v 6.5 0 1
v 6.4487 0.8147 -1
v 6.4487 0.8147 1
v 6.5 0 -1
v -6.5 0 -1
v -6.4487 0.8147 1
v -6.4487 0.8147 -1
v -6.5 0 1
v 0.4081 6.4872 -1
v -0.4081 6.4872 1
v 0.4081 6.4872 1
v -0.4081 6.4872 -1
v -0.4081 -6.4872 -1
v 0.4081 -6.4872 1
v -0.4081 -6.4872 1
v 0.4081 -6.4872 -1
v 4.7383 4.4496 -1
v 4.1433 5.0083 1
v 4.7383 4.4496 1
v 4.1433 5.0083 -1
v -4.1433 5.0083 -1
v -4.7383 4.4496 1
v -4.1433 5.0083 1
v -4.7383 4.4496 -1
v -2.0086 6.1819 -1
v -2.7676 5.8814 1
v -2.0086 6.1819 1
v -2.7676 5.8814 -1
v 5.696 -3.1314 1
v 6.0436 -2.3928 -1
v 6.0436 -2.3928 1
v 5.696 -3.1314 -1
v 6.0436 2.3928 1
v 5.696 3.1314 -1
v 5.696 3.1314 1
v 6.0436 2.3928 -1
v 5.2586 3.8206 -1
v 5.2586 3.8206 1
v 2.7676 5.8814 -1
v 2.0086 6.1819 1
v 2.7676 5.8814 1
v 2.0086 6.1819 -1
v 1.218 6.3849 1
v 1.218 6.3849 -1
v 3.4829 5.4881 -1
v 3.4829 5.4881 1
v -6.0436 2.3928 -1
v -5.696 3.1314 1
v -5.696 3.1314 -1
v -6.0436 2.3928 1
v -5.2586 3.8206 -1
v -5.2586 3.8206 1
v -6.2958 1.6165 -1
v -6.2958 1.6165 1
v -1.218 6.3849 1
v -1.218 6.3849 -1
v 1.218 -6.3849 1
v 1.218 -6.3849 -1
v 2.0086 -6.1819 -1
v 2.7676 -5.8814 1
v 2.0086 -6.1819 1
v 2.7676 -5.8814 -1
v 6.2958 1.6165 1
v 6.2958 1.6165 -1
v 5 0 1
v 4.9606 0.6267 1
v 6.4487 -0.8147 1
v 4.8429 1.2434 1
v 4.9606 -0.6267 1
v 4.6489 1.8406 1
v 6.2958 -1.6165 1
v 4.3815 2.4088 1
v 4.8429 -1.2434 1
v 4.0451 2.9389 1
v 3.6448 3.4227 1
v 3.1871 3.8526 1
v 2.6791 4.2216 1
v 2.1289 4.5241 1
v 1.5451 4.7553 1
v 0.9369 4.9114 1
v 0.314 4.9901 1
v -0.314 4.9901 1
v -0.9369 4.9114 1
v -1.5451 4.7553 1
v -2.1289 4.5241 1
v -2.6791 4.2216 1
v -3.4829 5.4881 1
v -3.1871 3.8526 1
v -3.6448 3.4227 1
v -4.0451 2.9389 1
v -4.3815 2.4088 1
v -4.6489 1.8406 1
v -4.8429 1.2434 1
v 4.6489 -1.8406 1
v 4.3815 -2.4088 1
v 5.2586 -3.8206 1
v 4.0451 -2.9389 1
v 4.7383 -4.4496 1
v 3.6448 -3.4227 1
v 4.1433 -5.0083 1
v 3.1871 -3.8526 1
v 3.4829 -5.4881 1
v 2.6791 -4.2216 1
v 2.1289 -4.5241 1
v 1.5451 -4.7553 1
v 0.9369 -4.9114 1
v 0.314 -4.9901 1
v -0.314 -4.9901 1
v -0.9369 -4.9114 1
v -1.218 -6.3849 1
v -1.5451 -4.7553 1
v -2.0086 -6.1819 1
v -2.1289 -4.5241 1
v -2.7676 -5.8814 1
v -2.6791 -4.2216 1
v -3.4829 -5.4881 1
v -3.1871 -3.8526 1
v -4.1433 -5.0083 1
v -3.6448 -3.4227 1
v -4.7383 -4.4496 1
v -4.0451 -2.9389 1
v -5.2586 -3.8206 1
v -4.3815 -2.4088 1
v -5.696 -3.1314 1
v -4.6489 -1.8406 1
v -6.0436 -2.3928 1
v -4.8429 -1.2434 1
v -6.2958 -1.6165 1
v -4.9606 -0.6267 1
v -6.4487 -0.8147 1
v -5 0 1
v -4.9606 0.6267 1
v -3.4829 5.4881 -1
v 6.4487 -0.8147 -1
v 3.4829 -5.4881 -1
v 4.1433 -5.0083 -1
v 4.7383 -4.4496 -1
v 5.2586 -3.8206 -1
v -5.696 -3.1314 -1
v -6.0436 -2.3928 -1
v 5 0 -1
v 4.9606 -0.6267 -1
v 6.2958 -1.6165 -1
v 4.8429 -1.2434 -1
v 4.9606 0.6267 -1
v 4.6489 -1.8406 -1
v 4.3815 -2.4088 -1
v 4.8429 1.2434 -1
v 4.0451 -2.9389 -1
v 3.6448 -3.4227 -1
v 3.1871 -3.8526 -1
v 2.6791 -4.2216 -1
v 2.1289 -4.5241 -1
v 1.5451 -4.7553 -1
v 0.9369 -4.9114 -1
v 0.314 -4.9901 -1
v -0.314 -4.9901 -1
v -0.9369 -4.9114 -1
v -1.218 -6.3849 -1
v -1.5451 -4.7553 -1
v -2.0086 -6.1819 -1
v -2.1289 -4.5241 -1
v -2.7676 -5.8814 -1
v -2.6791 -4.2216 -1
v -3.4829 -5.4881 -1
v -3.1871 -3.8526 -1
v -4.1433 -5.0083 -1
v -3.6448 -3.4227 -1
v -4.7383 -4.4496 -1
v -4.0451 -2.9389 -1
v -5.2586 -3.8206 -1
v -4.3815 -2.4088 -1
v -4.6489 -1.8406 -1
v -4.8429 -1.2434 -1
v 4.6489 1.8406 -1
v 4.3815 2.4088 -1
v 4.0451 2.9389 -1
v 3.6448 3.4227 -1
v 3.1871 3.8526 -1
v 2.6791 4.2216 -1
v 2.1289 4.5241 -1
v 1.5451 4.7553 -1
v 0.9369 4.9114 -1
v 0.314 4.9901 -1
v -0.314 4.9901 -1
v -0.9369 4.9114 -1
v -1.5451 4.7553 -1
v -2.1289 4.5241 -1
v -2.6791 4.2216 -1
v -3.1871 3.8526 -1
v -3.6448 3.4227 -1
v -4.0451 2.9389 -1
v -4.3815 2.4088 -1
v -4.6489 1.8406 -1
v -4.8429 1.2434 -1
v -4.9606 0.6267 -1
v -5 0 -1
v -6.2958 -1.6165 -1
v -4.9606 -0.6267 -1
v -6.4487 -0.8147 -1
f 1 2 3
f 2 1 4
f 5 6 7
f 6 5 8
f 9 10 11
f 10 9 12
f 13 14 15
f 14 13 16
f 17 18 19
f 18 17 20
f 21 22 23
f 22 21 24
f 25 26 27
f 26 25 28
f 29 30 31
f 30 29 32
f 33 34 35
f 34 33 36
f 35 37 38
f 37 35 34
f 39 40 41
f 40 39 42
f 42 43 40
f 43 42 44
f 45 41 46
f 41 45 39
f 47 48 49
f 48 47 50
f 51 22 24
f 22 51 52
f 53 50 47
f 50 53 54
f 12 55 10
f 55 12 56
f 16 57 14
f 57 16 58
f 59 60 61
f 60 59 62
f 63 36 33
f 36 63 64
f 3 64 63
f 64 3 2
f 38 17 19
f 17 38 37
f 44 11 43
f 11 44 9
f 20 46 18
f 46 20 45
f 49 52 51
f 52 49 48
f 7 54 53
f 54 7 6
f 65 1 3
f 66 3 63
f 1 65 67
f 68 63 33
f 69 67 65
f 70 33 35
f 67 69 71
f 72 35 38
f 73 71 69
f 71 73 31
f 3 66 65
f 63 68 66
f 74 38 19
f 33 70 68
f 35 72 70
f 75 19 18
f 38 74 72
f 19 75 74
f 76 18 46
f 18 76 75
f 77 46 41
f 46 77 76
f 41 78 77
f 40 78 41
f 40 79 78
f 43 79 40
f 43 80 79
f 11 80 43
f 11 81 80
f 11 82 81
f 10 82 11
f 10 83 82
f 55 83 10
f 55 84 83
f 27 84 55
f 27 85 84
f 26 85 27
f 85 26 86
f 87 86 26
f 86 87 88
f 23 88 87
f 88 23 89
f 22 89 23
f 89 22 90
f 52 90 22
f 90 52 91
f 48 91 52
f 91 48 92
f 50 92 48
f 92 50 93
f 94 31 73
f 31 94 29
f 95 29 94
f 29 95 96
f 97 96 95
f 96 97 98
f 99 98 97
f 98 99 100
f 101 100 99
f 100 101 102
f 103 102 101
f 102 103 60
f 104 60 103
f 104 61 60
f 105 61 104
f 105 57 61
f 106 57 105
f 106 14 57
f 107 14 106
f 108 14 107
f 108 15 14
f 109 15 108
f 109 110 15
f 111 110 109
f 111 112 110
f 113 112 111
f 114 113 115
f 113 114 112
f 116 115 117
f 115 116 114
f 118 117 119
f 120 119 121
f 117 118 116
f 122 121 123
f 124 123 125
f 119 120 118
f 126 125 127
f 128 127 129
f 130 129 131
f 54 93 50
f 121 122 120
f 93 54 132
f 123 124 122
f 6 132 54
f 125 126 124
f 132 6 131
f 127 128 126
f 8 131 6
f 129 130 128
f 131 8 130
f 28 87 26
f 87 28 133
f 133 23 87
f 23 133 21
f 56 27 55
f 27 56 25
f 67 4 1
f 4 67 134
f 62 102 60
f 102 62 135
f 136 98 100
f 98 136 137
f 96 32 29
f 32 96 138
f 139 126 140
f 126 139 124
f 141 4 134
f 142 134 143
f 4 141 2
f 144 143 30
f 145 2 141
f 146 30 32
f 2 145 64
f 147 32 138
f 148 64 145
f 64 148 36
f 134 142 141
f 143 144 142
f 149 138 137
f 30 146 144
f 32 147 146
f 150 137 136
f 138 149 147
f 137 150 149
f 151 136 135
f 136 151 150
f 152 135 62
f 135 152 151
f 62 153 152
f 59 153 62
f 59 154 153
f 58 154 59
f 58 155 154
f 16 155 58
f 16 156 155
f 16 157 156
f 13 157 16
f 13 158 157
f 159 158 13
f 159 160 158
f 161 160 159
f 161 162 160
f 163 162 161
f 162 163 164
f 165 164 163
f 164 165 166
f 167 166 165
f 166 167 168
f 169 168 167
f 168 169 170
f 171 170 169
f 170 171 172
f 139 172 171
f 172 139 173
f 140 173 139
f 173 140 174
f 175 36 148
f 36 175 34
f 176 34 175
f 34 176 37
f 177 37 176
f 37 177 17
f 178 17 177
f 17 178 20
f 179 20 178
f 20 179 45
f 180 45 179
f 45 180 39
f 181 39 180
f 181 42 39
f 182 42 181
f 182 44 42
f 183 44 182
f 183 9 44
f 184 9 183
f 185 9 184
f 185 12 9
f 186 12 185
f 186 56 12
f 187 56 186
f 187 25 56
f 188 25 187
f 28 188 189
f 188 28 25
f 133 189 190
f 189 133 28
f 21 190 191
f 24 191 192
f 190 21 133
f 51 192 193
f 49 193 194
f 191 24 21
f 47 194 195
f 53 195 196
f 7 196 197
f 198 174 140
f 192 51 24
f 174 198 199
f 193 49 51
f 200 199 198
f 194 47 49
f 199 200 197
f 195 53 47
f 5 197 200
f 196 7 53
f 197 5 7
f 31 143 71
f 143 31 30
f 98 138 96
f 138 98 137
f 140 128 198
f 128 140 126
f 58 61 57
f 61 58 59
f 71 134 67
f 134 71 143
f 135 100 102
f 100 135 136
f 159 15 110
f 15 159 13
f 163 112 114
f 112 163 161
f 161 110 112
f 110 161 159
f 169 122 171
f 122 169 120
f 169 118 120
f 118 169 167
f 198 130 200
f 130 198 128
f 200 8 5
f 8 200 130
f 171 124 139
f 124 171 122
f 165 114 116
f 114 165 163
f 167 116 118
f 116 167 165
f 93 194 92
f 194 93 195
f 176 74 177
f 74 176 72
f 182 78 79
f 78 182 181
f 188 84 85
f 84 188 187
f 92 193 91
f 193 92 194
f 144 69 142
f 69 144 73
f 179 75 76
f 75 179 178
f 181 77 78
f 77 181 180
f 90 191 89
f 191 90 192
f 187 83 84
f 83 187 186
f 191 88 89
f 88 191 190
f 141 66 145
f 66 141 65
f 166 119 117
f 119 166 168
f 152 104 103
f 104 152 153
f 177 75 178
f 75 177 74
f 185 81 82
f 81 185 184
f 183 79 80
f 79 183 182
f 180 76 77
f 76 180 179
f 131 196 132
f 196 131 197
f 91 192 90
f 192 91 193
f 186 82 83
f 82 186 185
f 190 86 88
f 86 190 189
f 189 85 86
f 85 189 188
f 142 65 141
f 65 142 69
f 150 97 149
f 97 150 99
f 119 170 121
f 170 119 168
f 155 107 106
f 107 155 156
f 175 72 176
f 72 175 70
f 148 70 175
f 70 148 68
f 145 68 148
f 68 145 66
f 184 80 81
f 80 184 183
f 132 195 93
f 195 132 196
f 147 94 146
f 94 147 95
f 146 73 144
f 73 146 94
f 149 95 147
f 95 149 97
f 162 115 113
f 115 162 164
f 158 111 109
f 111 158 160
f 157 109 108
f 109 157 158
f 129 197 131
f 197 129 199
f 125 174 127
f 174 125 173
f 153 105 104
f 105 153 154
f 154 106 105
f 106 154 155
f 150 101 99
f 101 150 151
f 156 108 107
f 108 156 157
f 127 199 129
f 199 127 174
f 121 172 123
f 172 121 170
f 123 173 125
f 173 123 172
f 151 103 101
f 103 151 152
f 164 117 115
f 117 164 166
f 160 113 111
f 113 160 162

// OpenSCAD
$fn = 50;


difference() {
	union() {
		translate(v = [0, 0, -1.0000000000]) {
			cylinder(h = 2, r = 6.5000000000);
		}
	}
	union() {
		translate(v = [0, 0, -100.0000000000]) {
			cylinder(h = 200, r = 5.0000000000);
		}
	}
}
